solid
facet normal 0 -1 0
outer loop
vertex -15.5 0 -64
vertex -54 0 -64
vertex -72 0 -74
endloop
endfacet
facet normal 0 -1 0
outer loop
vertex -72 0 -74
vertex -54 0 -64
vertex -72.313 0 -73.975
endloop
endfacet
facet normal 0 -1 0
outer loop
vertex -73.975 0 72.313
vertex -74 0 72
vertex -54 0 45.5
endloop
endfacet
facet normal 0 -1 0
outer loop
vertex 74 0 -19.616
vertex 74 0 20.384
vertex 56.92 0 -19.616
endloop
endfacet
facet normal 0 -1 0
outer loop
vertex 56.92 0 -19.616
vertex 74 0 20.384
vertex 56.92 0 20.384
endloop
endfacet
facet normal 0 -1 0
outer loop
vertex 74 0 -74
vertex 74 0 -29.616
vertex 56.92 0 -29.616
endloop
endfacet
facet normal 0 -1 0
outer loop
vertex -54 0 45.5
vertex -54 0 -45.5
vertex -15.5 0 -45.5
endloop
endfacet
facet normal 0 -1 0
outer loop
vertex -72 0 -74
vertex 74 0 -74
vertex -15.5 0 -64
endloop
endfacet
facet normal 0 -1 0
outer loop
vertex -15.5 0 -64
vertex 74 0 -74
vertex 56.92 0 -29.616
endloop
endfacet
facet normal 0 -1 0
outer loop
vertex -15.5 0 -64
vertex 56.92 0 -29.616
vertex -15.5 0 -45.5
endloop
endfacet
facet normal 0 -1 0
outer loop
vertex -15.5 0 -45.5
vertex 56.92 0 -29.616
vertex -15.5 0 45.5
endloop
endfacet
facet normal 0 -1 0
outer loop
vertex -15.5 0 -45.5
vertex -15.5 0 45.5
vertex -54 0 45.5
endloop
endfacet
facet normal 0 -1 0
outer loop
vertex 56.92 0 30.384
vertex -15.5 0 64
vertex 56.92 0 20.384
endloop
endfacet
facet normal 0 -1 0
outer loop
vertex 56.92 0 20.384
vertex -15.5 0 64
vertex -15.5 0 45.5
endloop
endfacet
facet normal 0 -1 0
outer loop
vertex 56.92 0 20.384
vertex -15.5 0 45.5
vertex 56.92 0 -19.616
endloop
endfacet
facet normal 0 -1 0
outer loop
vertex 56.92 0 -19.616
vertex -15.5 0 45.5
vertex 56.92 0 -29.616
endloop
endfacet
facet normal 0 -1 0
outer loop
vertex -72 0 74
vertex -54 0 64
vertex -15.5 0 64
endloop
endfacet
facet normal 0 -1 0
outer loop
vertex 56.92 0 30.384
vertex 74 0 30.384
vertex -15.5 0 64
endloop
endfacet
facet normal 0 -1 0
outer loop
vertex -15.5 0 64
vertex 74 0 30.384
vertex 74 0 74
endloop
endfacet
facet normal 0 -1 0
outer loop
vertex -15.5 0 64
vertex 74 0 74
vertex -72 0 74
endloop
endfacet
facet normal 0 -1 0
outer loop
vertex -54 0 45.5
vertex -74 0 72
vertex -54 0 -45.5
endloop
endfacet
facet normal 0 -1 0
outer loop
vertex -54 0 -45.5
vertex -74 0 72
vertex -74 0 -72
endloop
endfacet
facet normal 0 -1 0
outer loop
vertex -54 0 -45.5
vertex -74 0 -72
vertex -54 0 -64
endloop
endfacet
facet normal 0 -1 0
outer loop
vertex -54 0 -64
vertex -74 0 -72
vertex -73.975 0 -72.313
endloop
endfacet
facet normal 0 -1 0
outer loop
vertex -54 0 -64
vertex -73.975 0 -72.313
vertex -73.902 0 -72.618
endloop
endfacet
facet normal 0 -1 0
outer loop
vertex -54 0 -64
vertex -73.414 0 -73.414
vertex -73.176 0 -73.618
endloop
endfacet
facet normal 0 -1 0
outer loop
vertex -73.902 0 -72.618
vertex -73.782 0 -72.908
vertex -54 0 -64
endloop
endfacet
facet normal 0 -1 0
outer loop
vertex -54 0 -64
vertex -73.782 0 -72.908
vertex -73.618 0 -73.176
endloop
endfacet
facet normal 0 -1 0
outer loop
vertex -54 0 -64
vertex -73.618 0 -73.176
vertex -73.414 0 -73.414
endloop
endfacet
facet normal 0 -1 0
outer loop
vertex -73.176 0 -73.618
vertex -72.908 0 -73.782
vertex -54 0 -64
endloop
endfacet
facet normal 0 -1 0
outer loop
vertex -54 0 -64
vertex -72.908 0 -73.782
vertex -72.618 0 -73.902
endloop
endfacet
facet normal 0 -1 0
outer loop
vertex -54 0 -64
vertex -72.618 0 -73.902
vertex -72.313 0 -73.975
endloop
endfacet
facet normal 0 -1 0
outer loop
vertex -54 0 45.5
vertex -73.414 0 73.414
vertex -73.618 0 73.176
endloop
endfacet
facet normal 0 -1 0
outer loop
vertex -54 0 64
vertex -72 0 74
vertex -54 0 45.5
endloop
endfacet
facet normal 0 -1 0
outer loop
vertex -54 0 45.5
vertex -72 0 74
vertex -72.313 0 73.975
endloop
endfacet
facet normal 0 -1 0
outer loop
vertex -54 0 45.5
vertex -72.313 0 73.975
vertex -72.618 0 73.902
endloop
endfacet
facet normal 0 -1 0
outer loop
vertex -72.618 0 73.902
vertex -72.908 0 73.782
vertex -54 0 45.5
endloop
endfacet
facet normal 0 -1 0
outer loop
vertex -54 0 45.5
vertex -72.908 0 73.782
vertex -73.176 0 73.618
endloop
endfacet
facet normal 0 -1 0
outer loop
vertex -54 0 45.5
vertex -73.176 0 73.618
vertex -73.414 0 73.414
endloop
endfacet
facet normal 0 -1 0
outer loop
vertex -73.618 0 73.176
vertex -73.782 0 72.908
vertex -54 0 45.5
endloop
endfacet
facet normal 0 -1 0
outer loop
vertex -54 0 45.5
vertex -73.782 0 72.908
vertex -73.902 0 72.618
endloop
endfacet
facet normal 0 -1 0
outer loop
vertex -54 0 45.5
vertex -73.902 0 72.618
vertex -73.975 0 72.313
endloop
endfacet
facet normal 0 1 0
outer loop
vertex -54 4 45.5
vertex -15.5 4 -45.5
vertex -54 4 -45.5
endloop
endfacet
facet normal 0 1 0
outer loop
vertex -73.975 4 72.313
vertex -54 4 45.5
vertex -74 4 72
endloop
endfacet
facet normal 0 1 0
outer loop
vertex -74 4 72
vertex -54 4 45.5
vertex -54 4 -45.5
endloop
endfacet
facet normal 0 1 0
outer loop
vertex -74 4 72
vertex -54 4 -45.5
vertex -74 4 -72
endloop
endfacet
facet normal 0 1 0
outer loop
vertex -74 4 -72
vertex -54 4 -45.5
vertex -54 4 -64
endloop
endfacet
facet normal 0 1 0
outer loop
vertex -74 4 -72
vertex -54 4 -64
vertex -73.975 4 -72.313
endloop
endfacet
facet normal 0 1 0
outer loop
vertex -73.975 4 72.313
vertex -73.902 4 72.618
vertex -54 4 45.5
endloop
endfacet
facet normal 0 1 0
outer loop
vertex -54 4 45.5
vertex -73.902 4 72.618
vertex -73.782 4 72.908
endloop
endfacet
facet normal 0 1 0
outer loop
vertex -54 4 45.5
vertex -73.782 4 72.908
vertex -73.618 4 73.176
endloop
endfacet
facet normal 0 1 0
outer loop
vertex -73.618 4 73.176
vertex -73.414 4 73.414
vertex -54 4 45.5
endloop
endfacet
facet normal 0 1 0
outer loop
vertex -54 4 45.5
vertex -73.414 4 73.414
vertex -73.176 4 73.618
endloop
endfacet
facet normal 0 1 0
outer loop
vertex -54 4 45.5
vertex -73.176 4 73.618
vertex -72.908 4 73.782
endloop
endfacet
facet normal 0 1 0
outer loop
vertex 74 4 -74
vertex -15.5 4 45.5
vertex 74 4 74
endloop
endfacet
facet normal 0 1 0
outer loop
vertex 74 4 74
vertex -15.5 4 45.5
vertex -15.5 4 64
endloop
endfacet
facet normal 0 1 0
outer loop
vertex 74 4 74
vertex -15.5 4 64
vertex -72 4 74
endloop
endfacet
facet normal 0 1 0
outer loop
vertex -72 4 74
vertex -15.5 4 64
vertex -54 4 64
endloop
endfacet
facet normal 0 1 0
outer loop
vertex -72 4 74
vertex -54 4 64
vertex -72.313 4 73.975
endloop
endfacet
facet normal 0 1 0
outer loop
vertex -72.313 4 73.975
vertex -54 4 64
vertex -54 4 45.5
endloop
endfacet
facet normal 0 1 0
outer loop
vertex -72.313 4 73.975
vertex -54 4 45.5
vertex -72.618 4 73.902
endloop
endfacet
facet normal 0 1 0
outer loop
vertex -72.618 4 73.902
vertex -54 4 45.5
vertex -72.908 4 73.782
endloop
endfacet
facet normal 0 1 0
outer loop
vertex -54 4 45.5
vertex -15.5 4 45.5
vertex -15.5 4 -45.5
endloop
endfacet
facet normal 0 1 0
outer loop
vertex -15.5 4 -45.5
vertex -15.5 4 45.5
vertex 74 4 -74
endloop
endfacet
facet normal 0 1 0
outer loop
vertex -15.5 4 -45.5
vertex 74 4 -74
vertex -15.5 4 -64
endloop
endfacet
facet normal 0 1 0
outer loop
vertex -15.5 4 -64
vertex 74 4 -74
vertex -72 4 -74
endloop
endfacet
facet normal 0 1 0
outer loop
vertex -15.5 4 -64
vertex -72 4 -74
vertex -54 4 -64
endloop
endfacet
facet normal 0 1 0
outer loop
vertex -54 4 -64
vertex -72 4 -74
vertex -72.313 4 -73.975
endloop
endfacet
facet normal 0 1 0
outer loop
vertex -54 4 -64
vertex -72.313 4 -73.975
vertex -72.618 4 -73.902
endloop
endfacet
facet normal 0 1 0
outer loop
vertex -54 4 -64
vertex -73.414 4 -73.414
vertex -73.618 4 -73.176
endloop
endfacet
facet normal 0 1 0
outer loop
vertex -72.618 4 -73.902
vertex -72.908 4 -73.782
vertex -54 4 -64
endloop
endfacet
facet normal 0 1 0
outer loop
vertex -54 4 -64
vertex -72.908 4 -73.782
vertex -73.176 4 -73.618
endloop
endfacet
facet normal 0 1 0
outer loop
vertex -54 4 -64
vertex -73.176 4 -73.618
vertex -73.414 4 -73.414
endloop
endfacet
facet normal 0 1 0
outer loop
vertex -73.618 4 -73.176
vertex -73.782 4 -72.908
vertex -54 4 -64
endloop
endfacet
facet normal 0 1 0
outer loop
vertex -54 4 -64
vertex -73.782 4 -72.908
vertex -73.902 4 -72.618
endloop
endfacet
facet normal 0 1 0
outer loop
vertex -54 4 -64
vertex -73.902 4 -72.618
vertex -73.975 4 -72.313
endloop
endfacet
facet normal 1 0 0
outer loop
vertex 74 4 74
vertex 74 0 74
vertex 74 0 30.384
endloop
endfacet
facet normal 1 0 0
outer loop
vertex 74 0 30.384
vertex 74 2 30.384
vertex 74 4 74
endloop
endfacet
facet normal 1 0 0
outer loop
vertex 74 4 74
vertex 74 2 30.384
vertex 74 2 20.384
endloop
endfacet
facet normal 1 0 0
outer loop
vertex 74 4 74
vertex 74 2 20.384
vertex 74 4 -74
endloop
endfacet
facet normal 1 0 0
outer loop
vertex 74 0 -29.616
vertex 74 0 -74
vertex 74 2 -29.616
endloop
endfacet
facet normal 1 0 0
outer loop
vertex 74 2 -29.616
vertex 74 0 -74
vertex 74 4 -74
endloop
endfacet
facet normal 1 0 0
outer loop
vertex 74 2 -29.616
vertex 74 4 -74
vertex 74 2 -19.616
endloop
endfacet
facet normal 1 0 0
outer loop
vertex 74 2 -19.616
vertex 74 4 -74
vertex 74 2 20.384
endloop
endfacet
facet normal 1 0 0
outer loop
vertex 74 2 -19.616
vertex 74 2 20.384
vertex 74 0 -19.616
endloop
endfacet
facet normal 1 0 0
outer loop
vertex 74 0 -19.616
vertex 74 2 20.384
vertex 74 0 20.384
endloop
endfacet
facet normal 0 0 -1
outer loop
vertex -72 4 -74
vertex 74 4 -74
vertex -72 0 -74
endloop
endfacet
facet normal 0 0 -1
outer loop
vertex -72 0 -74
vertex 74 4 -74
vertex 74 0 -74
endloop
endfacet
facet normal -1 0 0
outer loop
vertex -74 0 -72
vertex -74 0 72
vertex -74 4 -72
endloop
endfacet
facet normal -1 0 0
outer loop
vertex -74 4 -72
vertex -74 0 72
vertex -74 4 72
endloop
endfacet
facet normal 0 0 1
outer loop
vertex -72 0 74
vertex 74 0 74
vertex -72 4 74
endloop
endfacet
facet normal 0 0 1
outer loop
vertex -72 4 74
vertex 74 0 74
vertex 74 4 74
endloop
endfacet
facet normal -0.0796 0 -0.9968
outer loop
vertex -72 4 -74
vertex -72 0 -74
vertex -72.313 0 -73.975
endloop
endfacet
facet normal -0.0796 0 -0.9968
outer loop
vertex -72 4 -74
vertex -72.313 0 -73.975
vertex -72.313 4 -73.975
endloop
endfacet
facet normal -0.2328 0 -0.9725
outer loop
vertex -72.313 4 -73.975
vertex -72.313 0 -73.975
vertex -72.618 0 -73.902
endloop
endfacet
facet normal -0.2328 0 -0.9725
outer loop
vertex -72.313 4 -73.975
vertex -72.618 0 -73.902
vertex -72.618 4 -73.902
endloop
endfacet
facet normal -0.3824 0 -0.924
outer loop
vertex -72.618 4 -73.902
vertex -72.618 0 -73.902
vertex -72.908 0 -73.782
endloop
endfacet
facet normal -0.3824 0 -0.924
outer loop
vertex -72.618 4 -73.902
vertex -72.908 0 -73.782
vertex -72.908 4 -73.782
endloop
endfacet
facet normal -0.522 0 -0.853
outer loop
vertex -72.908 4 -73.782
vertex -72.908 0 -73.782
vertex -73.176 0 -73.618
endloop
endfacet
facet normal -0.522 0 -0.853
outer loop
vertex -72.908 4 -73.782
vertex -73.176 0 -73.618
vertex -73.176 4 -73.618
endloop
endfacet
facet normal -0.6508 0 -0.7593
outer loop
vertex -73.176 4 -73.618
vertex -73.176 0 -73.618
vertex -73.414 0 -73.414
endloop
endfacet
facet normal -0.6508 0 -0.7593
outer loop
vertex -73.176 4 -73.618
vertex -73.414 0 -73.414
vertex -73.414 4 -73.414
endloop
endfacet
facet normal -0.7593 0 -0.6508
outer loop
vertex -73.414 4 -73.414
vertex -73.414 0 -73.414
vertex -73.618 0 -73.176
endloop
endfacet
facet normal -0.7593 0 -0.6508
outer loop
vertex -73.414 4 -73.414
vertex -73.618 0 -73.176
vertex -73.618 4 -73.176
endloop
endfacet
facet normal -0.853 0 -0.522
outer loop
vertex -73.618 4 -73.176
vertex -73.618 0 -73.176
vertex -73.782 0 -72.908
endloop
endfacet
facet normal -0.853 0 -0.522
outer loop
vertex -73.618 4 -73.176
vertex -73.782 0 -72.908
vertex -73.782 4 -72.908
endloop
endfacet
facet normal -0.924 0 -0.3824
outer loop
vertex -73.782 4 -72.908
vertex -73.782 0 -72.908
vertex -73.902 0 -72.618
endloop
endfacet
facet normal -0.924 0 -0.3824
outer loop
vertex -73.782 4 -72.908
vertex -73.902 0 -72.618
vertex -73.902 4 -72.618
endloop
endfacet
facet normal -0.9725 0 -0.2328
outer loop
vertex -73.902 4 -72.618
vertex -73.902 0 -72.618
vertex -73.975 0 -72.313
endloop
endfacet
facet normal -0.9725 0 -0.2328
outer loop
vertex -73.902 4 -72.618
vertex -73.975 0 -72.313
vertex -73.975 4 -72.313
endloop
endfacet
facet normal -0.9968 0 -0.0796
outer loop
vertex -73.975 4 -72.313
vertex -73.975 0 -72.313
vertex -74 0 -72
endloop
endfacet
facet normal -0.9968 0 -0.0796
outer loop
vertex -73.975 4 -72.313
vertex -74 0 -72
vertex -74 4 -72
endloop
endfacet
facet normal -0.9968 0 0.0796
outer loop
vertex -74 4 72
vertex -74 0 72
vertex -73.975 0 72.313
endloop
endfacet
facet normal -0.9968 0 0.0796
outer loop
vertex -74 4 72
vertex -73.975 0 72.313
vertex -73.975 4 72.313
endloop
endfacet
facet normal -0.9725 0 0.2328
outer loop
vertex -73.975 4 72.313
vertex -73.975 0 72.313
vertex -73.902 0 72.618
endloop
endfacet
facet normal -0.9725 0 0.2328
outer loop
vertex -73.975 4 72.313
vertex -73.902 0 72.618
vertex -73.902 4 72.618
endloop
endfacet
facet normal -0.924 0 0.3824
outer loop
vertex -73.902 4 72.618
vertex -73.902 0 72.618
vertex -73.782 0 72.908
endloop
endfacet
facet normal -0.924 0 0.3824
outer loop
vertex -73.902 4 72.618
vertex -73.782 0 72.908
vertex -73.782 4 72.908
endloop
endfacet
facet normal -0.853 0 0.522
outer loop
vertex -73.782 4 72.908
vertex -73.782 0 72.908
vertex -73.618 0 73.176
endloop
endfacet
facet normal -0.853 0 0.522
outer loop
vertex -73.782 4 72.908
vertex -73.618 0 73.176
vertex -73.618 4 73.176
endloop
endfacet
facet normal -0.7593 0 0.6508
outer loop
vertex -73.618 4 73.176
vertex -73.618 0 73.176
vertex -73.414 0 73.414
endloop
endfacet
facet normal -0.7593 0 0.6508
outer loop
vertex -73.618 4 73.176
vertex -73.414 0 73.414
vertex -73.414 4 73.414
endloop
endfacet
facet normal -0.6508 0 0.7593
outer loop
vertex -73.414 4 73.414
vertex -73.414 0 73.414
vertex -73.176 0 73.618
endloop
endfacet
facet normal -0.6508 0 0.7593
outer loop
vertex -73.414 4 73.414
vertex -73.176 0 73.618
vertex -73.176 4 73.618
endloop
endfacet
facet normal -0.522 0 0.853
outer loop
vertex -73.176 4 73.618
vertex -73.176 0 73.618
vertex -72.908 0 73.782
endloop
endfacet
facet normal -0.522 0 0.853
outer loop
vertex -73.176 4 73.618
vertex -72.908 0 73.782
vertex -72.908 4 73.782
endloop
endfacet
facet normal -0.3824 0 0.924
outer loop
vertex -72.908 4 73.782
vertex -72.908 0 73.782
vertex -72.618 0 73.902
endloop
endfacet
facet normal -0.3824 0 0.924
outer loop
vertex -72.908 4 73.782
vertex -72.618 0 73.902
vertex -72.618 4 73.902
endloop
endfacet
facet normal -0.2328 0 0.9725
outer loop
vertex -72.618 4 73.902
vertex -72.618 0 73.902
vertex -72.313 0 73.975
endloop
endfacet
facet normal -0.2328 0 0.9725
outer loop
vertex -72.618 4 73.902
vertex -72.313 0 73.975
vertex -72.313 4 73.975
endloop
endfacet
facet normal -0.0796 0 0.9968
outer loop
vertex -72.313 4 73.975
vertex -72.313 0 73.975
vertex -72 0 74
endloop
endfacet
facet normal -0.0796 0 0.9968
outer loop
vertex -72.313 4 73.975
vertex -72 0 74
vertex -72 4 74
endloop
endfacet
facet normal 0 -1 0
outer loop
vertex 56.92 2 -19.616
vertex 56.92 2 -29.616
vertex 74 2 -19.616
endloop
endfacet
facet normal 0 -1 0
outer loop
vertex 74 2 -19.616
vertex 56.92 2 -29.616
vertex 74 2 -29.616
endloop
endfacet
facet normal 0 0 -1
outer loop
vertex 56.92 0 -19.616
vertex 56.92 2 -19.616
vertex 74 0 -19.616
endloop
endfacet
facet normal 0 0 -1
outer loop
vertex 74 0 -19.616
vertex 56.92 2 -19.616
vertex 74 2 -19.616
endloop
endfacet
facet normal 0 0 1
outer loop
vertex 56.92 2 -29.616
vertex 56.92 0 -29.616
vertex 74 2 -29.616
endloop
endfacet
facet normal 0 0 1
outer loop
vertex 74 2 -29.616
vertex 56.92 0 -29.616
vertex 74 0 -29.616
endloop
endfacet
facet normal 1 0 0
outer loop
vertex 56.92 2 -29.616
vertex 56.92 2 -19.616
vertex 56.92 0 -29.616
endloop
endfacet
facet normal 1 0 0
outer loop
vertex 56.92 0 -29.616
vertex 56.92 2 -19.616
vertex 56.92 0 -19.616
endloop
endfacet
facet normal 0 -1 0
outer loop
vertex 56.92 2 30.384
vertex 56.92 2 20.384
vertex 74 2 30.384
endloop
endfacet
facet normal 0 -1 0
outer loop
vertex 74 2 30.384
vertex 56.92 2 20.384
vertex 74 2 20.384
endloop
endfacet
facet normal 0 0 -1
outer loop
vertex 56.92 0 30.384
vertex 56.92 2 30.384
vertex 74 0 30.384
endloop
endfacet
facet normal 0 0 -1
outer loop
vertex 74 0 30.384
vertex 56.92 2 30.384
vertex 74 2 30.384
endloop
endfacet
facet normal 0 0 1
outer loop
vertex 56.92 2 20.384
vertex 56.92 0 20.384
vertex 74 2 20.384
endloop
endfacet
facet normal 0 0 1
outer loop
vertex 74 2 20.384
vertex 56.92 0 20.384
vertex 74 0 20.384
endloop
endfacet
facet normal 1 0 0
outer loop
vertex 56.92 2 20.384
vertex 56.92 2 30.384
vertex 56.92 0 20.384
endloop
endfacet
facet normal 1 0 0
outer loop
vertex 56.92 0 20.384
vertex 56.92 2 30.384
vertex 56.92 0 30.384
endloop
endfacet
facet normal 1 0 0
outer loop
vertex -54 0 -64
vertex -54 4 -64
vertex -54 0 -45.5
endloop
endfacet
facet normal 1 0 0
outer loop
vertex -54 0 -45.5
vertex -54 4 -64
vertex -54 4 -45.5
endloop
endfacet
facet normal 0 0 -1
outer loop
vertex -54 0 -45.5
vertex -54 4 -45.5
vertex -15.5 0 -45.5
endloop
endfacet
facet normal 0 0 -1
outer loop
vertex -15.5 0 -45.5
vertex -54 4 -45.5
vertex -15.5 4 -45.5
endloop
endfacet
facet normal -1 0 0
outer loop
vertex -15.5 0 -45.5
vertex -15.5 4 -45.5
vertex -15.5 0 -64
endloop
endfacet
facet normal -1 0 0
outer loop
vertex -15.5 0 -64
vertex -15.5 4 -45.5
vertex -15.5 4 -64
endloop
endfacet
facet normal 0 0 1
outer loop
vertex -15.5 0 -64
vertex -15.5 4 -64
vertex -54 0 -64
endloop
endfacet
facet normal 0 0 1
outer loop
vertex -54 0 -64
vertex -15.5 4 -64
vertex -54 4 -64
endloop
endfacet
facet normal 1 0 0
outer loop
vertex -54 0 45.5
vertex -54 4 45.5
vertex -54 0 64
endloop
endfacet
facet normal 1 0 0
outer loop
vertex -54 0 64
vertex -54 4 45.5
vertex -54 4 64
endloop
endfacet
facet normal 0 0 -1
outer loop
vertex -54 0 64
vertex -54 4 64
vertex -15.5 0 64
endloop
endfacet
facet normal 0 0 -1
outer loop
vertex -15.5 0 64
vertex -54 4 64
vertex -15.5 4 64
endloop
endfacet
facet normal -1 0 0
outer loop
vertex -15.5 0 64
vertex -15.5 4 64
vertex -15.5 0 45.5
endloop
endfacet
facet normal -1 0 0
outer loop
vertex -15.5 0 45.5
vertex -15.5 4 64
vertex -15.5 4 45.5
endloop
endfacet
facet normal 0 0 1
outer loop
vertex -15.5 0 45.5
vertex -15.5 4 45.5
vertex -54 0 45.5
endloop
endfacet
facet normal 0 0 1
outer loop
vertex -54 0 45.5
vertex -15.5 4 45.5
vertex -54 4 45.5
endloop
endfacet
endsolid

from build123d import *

# Parameters (mm, degrees)
ESQUISSE1_W              = 148
ESQUISSE1_H              = 148
BOSS_EXTRU_1_DEPTH       = 4
CONG_1_R                 = 2
ESQUISSE12_W             = 23.640980831
ESQUISSE12_H             = 10
ESQUISSE12_W_2           = 17.131931469
ENL_V_MAT_EXTRU_12_DEPTH = 2
ESQUISSE13_W             = 38.5
ESQUISSE13_H             = 18.5
ENL_V_MAT_EXTRU_13_DEPTH = 5


with BuildPart() as part:
    # Esquisse1 → Boss.-Extru.1 (new body)
    with BuildSketch(Plane(origin=(0, 0, 0), x_dir=(1, 0, 0), z_dir=(0, 1, 0))):
        Rectangle(ESQUISSE1_W, ESQUISSE1_H)
    extrude(amount=BOSS_EXTRU_1_DEPTH)

    # Congé1
    cong_1_edges = [part.edges().sort_by_distance(p)[0] for p in [
        (-74, 2, 74),
        (-74, 2, -74),
    ]]
    fillet(cong_1_edges, radius=CONG_1_R)

    # Esquisse12 → Enlèv. mat.-Extru.12 (cut)
    with BuildSketch(Plane(origin=(0, 0, 0), x_dir=(1, 0, 0), z_dir=(0, 1, 0))):
        with Locations((68.740682109, -25.384218458)):
            Rectangle(ESQUISSE12_W, ESQUISSE12_H)
        with Locations((65.486157429, 24.615781542)):
            Rectangle(ESQUISSE12_W_2, ESQUISSE12_H)
    extrude(amount=ENL_V_MAT_EXTRU_12_DEPTH, mode=Mode.SUBTRACT)

    # Esquisse13 → Enlèv. mat.-Extru.13 (cut)
    with BuildSketch(Plane(origin=(0, 0, 0), x_dir=(1, 0, 0), z_dir=(0, 1, 0))):
        with Locations((-34.75, -54.75)):
            Rectangle(ESQUISSE13_W, ESQUISSE13_H)
        with Locations((-34.75, 54.75)):
            Rectangle(ESQUISSE13_W, ESQUISSE13_H)
    extrude(amount=ENL_V_MAT_EXTRU_13_DEPTH, mode=Mode.SUBTRACT)


solid = part.part
